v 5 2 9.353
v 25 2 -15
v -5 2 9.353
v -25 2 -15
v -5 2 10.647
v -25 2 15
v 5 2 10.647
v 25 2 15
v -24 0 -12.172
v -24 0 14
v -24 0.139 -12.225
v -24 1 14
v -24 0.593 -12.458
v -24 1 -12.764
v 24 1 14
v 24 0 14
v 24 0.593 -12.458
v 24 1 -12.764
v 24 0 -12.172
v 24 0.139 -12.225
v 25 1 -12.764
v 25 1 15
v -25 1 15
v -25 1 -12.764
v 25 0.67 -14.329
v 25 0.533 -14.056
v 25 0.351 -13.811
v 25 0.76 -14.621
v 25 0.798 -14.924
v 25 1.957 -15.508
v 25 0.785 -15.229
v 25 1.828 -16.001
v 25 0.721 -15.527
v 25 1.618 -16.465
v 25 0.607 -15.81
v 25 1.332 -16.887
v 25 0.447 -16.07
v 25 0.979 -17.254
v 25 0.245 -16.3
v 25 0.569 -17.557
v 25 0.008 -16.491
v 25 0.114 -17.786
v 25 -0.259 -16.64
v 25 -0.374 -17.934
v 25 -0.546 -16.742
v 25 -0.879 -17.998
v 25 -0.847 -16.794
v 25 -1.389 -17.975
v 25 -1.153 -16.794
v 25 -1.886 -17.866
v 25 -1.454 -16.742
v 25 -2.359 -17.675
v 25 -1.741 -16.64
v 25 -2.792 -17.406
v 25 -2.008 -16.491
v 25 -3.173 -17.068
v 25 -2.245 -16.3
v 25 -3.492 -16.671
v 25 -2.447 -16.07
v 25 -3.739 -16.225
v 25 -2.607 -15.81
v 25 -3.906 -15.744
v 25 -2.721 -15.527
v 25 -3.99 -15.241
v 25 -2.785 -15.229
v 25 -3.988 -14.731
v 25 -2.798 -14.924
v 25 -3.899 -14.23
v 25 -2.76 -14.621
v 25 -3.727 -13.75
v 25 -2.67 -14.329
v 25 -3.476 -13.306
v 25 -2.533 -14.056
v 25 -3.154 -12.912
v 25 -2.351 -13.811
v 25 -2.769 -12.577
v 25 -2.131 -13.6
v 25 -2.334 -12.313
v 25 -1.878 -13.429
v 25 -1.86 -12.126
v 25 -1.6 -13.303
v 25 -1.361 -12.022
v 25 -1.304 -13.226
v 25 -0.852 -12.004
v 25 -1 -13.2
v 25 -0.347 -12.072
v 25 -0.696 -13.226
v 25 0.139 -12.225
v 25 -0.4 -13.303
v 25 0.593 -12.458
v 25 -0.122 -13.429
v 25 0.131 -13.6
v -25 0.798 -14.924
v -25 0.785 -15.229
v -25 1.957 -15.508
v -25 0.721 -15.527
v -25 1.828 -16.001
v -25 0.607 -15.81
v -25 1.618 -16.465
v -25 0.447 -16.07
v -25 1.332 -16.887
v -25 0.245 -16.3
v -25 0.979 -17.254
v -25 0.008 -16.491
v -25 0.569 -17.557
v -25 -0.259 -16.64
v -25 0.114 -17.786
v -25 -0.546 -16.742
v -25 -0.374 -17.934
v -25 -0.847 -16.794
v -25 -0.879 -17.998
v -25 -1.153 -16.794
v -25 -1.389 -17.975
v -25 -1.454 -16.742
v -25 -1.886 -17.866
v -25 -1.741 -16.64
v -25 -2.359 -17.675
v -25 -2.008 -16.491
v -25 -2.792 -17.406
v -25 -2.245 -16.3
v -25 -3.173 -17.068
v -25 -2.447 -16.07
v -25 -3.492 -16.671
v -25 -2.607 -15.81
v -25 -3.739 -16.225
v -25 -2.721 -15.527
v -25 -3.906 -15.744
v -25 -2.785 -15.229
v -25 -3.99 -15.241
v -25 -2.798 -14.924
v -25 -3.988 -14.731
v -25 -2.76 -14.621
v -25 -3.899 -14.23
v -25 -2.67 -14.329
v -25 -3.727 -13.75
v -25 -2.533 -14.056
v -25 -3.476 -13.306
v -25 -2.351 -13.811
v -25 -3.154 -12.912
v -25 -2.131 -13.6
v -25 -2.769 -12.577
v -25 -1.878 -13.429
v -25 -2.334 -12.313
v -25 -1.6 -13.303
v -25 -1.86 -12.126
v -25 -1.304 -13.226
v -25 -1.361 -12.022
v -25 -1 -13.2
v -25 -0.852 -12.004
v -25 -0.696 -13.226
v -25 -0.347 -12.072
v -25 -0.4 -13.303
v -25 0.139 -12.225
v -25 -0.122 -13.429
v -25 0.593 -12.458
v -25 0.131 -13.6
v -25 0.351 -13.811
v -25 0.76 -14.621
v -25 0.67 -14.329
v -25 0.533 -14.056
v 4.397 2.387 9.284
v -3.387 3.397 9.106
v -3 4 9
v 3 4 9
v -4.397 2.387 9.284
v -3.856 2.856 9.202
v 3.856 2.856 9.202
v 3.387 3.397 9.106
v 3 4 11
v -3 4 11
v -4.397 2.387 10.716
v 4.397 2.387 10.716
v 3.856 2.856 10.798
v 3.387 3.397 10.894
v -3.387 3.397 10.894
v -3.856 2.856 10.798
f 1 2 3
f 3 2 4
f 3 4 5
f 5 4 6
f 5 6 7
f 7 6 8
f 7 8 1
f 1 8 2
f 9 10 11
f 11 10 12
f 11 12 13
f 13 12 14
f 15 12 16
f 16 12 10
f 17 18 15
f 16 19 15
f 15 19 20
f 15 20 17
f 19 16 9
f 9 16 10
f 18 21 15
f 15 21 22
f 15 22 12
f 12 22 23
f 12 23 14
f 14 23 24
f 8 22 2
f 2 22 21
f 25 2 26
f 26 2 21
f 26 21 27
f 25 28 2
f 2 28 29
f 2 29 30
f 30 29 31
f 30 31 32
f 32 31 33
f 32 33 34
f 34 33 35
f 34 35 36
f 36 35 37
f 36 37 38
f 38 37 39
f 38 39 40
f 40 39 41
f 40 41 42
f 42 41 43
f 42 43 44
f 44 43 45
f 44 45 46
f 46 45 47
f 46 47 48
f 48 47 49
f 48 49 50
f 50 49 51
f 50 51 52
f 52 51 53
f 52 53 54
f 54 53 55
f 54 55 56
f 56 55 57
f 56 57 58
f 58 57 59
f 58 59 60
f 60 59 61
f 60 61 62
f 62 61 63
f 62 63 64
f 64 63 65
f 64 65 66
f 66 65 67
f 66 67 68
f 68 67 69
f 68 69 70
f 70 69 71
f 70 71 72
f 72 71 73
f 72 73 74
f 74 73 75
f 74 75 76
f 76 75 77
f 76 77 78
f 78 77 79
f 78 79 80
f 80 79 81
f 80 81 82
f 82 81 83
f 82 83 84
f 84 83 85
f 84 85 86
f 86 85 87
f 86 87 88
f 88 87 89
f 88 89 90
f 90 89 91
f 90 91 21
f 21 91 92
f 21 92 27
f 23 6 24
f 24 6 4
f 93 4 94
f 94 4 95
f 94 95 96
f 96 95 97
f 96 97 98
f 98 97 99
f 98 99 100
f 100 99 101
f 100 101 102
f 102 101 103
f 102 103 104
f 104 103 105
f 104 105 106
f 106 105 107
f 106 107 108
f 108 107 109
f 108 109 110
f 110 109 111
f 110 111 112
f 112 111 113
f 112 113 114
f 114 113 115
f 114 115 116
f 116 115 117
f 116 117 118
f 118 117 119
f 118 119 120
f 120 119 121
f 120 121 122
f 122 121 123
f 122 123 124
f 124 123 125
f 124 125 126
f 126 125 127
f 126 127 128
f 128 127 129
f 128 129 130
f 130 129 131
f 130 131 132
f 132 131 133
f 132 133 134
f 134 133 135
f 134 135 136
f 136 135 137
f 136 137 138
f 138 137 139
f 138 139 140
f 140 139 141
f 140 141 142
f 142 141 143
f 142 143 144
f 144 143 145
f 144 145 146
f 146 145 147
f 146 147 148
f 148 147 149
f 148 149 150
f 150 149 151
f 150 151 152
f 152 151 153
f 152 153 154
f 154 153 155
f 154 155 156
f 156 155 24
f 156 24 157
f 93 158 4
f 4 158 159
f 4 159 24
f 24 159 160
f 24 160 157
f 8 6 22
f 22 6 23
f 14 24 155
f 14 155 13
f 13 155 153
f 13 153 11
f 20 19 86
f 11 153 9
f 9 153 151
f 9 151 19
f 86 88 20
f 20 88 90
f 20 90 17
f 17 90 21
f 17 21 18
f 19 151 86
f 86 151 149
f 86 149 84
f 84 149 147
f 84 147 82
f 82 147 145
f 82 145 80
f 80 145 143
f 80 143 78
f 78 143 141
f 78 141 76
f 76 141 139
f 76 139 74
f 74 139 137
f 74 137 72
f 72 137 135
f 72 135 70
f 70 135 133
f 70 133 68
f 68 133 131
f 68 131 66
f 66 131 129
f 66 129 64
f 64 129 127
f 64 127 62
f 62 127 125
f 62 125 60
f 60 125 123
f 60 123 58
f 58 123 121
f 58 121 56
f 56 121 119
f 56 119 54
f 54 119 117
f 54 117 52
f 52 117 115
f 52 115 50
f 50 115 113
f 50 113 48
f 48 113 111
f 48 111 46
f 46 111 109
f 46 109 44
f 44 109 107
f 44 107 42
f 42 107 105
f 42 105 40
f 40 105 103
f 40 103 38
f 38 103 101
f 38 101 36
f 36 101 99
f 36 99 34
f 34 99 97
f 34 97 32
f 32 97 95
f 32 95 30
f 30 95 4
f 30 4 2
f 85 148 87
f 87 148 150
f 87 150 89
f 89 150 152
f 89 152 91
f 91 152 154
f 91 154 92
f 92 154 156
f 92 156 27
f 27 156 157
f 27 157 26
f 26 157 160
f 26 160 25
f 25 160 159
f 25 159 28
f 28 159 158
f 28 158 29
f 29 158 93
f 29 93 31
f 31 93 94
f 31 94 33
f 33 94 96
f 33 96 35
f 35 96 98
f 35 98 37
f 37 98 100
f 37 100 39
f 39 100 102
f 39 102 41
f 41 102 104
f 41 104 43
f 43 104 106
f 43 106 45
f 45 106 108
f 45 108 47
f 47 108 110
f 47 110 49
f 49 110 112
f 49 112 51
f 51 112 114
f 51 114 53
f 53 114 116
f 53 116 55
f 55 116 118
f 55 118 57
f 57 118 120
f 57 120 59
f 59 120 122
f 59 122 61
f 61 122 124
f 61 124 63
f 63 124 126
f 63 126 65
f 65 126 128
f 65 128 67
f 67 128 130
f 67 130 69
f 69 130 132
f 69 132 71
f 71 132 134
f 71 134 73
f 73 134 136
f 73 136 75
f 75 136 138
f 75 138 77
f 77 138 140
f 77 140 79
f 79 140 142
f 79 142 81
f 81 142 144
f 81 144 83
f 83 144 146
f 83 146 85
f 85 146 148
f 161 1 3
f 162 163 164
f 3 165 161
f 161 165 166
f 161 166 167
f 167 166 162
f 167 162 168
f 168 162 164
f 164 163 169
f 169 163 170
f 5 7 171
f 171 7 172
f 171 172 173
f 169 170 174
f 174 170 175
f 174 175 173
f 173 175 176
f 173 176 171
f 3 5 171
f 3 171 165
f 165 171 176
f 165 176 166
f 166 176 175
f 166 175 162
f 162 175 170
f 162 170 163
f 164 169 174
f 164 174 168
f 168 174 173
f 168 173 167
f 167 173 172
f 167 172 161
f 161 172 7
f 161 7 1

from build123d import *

# Parameters (mm, degrees)
SKETCH1_W           = 48
SKETCH1_H           = 28
BOSS_EXTRUDE1_DEPTH = 1
SKETCH2_W           = 50
SKETCH2_H           = 30
BOSS_EXTRUDE2_DEPTH = 1
SKETCH3_R           = 3
BOSS_EXTRUDE3_DEPTH = 50
SKETCH4_R           = 1.8
CUT_EXTRUDE1_DEPTH  = 51
BOSS_EXTRUDE4_DEPTH = 5
CUT_EXTRUDE2_DEPTH  = 34


with BuildPart() as part:
    # Sketch1 → Boss-Extrude1 (new body)
    with BuildSketch(Plane(origin=(0, 0, 0), x_dir=(1, 0, 0), z_dir=(0, 1, 0))):
        Rectangle(SKETCH1_W, SKETCH1_H)
    extrude(amount=BOSS_EXTRUDE1_DEPTH)

    # Sketch2 → Boss-Extrude2 (add)
    with BuildSketch(Plane(origin=(0, 1, 0), x_dir=(1, 0, 0), z_dir=(0, 1, 0))):
        Rectangle(SKETCH2_W, SKETCH2_H)
    extrude(amount=BOSS_EXTRUDE2_DEPTH)

    # Sketch3 → Boss-Extrude3 (add)
    with BuildSketch(Plane.ZY.offset(25)):
        with Locations((-15, -1)):
            Circle(SKETCH3_R)
    extrude(amount=-BOSS_EXTRUDE3_DEPTH)

    # Sketch4 → Cut-Extrude1 (cut, through all)
    with BuildSketch(Plane.ZY.offset(25)):
        with Locations((-15, -1)):
            Circle(SKETCH4_R)
    extrude(amount=-CUT_EXTRUDE1_DEPTH, mode=Mode.SUBTRACT)

    # Sketch6 → Boss-Extrude4 (add, symmetric)
    with BuildSketch(Plane(origin=(0, 0, 0), x_dir=(0, 0, -1), z_dir=(1, 0, 0))):
        Polygon((-10.647346039, 2), (-11, 4), (-9, 4), (-9.352653961, 2), align=None)
    extrude(amount=BOSS_EXTRUDE4_DEPTH, both=True)

    # Sketch8 → Cut-Extrude2 (cut, through all)
    with BuildSketch(Plane.XY.offset(15)):
        with BuildLine():
            Line((3, 4), (5, 4))
            Line((5, 4), (5, 2))
            ThreePointArc((5, 2), (3.855631086, 2.855631086), (3, 4))
        make_face()
        with BuildLine():
            Line((-5, 4), (-5, 2))
            ThreePointArc((-5, 2), (-3.855631086, 2.855631086), (-3, 4))
            Line((-3, 4), (-5, 4))
        make_face()
    extrude(amount=-CUT_EXTRUDE2_DEPTH, mode=Mode.SUBTRACT)


solid = part.part
